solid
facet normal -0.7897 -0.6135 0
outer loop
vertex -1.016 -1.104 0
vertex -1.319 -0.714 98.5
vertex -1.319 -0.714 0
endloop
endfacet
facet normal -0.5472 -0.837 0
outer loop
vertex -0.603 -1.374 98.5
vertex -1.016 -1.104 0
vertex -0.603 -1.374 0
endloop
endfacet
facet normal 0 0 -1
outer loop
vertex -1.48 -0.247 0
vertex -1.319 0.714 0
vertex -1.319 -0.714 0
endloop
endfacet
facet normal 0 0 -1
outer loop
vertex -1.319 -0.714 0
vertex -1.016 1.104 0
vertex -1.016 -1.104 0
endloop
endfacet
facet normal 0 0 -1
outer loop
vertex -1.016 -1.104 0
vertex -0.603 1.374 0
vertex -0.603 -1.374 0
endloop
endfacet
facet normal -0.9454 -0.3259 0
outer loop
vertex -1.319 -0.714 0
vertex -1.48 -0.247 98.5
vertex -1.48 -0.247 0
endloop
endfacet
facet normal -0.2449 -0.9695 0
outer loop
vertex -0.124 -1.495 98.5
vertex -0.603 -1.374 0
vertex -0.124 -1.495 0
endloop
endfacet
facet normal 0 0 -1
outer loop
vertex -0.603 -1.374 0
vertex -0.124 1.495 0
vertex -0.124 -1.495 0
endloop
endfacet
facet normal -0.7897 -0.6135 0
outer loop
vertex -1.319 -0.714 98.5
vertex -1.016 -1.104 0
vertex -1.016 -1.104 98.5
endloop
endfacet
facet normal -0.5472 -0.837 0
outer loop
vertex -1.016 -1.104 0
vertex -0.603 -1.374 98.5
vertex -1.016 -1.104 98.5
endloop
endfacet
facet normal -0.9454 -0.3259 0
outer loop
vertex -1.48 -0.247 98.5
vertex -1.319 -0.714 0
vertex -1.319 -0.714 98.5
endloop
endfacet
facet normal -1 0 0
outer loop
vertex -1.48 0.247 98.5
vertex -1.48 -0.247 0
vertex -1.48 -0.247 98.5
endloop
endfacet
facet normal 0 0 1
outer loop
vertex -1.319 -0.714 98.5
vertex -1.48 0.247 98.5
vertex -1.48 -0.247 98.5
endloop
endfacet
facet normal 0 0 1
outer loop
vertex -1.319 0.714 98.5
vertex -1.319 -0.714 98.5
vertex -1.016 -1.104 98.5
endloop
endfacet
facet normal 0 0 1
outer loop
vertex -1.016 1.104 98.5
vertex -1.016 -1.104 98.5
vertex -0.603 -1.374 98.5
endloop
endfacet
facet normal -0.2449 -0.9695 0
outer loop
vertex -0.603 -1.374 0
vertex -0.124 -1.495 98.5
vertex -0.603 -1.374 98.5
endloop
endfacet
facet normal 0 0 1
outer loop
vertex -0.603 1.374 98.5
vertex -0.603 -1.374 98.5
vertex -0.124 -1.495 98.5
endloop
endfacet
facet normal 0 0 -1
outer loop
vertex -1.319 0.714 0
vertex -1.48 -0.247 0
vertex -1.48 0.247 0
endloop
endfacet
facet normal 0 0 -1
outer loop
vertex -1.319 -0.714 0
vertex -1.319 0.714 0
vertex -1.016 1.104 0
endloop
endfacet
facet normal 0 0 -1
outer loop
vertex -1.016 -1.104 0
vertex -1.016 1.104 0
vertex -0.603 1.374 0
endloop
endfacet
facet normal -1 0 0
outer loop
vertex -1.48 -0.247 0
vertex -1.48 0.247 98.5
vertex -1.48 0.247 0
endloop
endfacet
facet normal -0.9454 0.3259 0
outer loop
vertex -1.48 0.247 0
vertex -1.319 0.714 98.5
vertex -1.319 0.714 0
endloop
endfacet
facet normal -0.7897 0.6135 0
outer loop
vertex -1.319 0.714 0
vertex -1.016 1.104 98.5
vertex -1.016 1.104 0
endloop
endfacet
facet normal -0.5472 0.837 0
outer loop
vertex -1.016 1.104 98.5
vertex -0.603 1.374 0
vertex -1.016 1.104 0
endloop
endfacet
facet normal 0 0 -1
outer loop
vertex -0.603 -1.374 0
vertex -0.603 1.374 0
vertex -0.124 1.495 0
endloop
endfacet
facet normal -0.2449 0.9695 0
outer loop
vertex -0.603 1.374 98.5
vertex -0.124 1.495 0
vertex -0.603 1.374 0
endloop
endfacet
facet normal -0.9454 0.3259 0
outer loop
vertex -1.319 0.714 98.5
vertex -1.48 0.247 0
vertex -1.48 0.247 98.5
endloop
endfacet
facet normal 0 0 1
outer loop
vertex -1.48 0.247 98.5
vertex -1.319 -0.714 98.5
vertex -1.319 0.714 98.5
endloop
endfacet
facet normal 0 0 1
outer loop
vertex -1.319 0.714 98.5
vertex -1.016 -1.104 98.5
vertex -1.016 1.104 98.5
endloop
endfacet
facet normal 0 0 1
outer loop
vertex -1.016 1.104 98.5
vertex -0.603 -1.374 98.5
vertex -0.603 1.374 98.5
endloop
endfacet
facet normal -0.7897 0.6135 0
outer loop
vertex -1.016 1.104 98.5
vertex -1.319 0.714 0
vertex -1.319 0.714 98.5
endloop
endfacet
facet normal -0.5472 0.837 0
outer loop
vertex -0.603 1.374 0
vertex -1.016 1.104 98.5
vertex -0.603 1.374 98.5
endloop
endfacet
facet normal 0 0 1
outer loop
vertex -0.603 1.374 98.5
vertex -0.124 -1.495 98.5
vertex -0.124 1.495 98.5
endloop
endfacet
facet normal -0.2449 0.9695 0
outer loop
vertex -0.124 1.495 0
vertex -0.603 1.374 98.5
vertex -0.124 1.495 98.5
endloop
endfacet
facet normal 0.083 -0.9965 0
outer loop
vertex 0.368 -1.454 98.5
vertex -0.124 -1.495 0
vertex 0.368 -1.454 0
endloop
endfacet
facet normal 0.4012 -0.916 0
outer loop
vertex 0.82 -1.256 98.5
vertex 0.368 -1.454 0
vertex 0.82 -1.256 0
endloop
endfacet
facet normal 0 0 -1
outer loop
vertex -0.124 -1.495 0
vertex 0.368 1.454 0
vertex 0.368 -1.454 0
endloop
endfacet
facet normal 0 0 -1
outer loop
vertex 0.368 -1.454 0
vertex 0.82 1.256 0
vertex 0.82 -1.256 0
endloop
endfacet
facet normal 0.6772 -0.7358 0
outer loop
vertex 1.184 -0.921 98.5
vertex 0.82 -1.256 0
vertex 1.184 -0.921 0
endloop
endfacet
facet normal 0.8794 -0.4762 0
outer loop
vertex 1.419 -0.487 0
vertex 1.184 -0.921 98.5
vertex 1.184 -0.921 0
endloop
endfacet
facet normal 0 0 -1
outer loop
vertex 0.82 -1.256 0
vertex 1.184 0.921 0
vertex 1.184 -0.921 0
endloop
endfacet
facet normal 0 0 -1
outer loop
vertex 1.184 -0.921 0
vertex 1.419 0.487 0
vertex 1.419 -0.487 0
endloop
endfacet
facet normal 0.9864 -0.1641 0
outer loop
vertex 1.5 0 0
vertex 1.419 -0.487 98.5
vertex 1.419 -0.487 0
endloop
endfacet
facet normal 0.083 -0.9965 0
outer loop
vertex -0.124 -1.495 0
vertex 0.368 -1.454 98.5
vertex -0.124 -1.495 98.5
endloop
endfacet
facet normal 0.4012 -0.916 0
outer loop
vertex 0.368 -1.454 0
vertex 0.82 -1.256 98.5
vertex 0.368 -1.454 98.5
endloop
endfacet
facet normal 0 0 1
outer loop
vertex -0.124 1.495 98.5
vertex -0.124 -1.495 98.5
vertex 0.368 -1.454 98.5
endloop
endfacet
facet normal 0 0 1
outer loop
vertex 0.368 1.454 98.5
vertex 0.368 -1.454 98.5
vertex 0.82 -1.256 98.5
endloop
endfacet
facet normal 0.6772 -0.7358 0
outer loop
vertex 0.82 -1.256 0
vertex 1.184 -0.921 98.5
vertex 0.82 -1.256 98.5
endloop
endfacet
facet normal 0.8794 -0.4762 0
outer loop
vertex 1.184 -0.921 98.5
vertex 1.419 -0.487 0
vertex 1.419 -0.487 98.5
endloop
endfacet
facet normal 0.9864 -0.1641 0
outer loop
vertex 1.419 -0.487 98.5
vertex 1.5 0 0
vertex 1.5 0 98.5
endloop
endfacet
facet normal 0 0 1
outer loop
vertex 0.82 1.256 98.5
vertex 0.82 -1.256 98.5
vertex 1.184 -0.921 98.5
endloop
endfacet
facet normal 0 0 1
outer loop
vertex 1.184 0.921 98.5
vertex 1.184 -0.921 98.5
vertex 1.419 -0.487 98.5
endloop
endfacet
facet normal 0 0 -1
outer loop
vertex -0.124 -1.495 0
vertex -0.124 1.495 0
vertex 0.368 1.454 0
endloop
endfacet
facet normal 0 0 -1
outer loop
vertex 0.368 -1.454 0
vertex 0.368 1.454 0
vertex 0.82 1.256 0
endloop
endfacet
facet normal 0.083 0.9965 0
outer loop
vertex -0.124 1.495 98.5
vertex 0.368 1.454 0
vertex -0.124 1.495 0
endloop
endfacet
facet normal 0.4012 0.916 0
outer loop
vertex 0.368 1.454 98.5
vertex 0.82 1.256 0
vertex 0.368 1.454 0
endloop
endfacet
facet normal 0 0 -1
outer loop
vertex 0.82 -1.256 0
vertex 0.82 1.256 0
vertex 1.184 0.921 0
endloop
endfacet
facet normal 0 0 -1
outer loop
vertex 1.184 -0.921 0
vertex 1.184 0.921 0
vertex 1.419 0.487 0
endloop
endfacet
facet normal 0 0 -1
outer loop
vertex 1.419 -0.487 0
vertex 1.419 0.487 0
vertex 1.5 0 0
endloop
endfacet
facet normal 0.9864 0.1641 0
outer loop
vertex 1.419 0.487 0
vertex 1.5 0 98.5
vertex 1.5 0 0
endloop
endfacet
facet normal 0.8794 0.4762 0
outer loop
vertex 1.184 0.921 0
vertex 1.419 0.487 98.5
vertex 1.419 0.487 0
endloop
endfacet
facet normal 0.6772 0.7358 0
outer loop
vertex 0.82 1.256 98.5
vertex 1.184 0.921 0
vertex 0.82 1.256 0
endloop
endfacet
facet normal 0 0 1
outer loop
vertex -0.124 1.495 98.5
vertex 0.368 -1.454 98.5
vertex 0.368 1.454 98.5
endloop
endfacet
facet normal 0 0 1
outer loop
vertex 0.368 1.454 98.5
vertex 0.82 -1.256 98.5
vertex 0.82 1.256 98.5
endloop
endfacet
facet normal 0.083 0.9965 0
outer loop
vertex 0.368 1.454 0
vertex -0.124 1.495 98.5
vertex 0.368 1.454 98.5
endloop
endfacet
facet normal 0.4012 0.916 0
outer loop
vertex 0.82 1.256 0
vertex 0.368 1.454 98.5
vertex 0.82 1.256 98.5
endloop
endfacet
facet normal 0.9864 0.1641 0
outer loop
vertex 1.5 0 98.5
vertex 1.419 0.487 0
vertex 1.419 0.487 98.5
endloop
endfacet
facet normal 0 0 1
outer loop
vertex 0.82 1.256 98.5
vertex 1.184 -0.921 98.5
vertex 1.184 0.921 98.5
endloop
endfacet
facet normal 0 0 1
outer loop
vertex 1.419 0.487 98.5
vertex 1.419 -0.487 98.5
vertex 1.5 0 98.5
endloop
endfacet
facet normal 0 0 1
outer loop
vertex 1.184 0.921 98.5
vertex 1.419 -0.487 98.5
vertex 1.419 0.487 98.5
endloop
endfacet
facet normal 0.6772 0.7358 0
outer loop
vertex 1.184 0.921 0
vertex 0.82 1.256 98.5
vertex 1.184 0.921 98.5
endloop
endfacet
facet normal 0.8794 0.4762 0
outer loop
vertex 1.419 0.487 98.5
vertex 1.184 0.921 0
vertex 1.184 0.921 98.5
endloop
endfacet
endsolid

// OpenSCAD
// file: ../lib/lib.scad
// Shared helpers. Include AFTER params.scad (needs TOL, M3_* etc.).
$fa = 4; $fs = 0.5;

module rrect(size, r) {            // 2D rounded rectangle, centred
    r2 = min(r, min(size[0], size[1]) / 2 - 0.001);
    offset(r = r2) square([size[0] - 2 * r2, size[1] - 2 * r2], center = true);
}
module rbox(size, r, center_xy = true) {   // box with rounded vertical edges
    translate(center_xy ? [0, 0, 0] : [size[0] / 2, size[1] / 2, 0])
        linear_extrude(size[2]) rrect([size[0], size[1]], r);
}
module rbox_at(x0, x1, y0, y1, z0, z1, r = 0.01) {
    translate([(x0 + x1) / 2, (y0 + y1) / 2, z0]) rbox([x1 - x0, y1 - y0, z1 - z0], r);
}
module box_at(x0, x1, y0, y1, z0, z1) { translate([x0, y0, z0]) cube([x1 - x0, y1 - y0, z1 - z0]); }

module ring(ro, ri, h) { difference() { cylinder(r = ro, h = h); translate([0, 0, -1]) cylinder(r = ri, h = h + 2); } }
module ring_sector(ro, ri, h, a0, a1) {
    intersection() {
        ring(ro, ri, h);
        linear_extrude(h) polygon(concat([[0, 0]], [for (a = [a0 : (a1 - a0) / 24 : a1]) 2 * ro * [cos(a), sin(a)]]));
    }
}
// teardrop hole along an axis lying horizontal (axis = Y after rotation), printable w/o support
module teardrop2d(d) { union() { circle(d = d); rotate(45) square(d / 2); } }
// vertical heat-set insert hole, opening at z=0 going +z (depth l)
module insert_hole(l = M3_INSERT_L) { translate([0, 0, -EPS]) cylinder(d = M3_INSERT_D, h = l + EPS); }
module m3_clear(l) { translate([0, 0, -EPS]) cylinder(d = M3_CLEAR, h = l + 2 * EPS); }
module m3_csk(l) {  // countersunk clearance from z=0 upward, head at z=0 side
    translate([0, 0, -EPS]) { cylinder(d = M3_CLEAR, h = l + 2 * EPS); cylinder(d1 = 6.4, d2 = M3_CLEAR, h = 1.7); }
}
module card2d() { rrect([CARD_L, CARD_W], CARD_R); }
module card_at(cy, z) { translate([0, cy, z]) linear_extrude(CARD_T) card2d(); }

// ---- gears ----
function _inv(a) = tan(a) - a * PI_ / 180;           // involute function, a in deg
function _invpt(rb, r, ang0, s) = let(al = acos(rb / r), th = ang0 - s * (_inv(al) * 180 / PI_)) [r * cos(th), r * sin(th)];
module involute_gear2d(m, z, pa = 20, clearance = 0.05) {
    rp = m * z / 2; rb = rp * cos(pa); ra = rp + m - clearance; rf = rp - 1.25 * m;
    half = 90 / z + _inv(pa) * 180 / PI_;            // tooth half-angle at base (deg)
    n = 8;
    rs = [for (i = [0 : n]) max(rb, rf) + (ra - max(rb, rf)) * i / n];
    union() {
        circle(r = rf, $fn = z * 4);
        for (k = [0 : z - 1]) rotate(k * 360 / z) polygon(concat(
            [[rf * cos(-half), rf * sin(-half)]],
            [for (r = rs) let(p = _invpt(rb, r, half, 1)) [p[0], -p[1]]],
            [for (i = [n : -1 : 0]) _invpt(rb, rs[i], half, 1)],
            [[rf * cos(half), rf * sin(half)]]));
    }
}
// straight gear rack (2D in XY: teeth along +x, pointing -y, pitch line at y=0)
module gear_rack2d(m, len, back = 3) {
    p = PI_ * m; ad = m; de = 1.25 * m; t = tan(20);
    n = ceil(len / p) + 1;
    intersection() {
        union() {
            translate([0, de]) square([len, back]);
            for (i = [0 : n]) translate([i * p - p / 4, 0]) polygon([
                [-(p / 4 + de * t), de + 0.01], [p / 4 + de * t + 0.01, de + 0.01],
                [p / 4 - ad * t, -ad], [-(p / 4 - ad * t), -ad] ]);
        }
        translate([0, -ad - 1]) square([len, ad + de + back + 2]);
    }
}
// GT2 belt-tooth profile ring (teeth outward), 2D
module gt2_ring2d(n, r_land, ri) {
    union() {
        difference() { circle(r = r_land + 0.01, $fn = n * 2); circle(r = ri, $fn = n * 2); }
        for (k = [0 : n - 1]) rotate(k * 360 / n)
            translate([r_land, 0]) hull() { translate([-0.2, 0]) square([0.2, 1.0], center = true); translate([0.25, 0]) circle(r = 0.5, $fn = 12); }
    }
}
// main file
// Vendor model: 3 mm silver-steel shaft (loader roller axle / idler axle), cut to length. Local: axis Z, z 0..l.
include <../params.scad>
include <../lib/lib.scad>
module vendor_shaft_3mm(l = SHAFT_X1 - SHAFT_X0) color([0.8,0.8,0.82]) cylinder(d = SHAFT_D, h = l);

vendor_shaft_3mm();
